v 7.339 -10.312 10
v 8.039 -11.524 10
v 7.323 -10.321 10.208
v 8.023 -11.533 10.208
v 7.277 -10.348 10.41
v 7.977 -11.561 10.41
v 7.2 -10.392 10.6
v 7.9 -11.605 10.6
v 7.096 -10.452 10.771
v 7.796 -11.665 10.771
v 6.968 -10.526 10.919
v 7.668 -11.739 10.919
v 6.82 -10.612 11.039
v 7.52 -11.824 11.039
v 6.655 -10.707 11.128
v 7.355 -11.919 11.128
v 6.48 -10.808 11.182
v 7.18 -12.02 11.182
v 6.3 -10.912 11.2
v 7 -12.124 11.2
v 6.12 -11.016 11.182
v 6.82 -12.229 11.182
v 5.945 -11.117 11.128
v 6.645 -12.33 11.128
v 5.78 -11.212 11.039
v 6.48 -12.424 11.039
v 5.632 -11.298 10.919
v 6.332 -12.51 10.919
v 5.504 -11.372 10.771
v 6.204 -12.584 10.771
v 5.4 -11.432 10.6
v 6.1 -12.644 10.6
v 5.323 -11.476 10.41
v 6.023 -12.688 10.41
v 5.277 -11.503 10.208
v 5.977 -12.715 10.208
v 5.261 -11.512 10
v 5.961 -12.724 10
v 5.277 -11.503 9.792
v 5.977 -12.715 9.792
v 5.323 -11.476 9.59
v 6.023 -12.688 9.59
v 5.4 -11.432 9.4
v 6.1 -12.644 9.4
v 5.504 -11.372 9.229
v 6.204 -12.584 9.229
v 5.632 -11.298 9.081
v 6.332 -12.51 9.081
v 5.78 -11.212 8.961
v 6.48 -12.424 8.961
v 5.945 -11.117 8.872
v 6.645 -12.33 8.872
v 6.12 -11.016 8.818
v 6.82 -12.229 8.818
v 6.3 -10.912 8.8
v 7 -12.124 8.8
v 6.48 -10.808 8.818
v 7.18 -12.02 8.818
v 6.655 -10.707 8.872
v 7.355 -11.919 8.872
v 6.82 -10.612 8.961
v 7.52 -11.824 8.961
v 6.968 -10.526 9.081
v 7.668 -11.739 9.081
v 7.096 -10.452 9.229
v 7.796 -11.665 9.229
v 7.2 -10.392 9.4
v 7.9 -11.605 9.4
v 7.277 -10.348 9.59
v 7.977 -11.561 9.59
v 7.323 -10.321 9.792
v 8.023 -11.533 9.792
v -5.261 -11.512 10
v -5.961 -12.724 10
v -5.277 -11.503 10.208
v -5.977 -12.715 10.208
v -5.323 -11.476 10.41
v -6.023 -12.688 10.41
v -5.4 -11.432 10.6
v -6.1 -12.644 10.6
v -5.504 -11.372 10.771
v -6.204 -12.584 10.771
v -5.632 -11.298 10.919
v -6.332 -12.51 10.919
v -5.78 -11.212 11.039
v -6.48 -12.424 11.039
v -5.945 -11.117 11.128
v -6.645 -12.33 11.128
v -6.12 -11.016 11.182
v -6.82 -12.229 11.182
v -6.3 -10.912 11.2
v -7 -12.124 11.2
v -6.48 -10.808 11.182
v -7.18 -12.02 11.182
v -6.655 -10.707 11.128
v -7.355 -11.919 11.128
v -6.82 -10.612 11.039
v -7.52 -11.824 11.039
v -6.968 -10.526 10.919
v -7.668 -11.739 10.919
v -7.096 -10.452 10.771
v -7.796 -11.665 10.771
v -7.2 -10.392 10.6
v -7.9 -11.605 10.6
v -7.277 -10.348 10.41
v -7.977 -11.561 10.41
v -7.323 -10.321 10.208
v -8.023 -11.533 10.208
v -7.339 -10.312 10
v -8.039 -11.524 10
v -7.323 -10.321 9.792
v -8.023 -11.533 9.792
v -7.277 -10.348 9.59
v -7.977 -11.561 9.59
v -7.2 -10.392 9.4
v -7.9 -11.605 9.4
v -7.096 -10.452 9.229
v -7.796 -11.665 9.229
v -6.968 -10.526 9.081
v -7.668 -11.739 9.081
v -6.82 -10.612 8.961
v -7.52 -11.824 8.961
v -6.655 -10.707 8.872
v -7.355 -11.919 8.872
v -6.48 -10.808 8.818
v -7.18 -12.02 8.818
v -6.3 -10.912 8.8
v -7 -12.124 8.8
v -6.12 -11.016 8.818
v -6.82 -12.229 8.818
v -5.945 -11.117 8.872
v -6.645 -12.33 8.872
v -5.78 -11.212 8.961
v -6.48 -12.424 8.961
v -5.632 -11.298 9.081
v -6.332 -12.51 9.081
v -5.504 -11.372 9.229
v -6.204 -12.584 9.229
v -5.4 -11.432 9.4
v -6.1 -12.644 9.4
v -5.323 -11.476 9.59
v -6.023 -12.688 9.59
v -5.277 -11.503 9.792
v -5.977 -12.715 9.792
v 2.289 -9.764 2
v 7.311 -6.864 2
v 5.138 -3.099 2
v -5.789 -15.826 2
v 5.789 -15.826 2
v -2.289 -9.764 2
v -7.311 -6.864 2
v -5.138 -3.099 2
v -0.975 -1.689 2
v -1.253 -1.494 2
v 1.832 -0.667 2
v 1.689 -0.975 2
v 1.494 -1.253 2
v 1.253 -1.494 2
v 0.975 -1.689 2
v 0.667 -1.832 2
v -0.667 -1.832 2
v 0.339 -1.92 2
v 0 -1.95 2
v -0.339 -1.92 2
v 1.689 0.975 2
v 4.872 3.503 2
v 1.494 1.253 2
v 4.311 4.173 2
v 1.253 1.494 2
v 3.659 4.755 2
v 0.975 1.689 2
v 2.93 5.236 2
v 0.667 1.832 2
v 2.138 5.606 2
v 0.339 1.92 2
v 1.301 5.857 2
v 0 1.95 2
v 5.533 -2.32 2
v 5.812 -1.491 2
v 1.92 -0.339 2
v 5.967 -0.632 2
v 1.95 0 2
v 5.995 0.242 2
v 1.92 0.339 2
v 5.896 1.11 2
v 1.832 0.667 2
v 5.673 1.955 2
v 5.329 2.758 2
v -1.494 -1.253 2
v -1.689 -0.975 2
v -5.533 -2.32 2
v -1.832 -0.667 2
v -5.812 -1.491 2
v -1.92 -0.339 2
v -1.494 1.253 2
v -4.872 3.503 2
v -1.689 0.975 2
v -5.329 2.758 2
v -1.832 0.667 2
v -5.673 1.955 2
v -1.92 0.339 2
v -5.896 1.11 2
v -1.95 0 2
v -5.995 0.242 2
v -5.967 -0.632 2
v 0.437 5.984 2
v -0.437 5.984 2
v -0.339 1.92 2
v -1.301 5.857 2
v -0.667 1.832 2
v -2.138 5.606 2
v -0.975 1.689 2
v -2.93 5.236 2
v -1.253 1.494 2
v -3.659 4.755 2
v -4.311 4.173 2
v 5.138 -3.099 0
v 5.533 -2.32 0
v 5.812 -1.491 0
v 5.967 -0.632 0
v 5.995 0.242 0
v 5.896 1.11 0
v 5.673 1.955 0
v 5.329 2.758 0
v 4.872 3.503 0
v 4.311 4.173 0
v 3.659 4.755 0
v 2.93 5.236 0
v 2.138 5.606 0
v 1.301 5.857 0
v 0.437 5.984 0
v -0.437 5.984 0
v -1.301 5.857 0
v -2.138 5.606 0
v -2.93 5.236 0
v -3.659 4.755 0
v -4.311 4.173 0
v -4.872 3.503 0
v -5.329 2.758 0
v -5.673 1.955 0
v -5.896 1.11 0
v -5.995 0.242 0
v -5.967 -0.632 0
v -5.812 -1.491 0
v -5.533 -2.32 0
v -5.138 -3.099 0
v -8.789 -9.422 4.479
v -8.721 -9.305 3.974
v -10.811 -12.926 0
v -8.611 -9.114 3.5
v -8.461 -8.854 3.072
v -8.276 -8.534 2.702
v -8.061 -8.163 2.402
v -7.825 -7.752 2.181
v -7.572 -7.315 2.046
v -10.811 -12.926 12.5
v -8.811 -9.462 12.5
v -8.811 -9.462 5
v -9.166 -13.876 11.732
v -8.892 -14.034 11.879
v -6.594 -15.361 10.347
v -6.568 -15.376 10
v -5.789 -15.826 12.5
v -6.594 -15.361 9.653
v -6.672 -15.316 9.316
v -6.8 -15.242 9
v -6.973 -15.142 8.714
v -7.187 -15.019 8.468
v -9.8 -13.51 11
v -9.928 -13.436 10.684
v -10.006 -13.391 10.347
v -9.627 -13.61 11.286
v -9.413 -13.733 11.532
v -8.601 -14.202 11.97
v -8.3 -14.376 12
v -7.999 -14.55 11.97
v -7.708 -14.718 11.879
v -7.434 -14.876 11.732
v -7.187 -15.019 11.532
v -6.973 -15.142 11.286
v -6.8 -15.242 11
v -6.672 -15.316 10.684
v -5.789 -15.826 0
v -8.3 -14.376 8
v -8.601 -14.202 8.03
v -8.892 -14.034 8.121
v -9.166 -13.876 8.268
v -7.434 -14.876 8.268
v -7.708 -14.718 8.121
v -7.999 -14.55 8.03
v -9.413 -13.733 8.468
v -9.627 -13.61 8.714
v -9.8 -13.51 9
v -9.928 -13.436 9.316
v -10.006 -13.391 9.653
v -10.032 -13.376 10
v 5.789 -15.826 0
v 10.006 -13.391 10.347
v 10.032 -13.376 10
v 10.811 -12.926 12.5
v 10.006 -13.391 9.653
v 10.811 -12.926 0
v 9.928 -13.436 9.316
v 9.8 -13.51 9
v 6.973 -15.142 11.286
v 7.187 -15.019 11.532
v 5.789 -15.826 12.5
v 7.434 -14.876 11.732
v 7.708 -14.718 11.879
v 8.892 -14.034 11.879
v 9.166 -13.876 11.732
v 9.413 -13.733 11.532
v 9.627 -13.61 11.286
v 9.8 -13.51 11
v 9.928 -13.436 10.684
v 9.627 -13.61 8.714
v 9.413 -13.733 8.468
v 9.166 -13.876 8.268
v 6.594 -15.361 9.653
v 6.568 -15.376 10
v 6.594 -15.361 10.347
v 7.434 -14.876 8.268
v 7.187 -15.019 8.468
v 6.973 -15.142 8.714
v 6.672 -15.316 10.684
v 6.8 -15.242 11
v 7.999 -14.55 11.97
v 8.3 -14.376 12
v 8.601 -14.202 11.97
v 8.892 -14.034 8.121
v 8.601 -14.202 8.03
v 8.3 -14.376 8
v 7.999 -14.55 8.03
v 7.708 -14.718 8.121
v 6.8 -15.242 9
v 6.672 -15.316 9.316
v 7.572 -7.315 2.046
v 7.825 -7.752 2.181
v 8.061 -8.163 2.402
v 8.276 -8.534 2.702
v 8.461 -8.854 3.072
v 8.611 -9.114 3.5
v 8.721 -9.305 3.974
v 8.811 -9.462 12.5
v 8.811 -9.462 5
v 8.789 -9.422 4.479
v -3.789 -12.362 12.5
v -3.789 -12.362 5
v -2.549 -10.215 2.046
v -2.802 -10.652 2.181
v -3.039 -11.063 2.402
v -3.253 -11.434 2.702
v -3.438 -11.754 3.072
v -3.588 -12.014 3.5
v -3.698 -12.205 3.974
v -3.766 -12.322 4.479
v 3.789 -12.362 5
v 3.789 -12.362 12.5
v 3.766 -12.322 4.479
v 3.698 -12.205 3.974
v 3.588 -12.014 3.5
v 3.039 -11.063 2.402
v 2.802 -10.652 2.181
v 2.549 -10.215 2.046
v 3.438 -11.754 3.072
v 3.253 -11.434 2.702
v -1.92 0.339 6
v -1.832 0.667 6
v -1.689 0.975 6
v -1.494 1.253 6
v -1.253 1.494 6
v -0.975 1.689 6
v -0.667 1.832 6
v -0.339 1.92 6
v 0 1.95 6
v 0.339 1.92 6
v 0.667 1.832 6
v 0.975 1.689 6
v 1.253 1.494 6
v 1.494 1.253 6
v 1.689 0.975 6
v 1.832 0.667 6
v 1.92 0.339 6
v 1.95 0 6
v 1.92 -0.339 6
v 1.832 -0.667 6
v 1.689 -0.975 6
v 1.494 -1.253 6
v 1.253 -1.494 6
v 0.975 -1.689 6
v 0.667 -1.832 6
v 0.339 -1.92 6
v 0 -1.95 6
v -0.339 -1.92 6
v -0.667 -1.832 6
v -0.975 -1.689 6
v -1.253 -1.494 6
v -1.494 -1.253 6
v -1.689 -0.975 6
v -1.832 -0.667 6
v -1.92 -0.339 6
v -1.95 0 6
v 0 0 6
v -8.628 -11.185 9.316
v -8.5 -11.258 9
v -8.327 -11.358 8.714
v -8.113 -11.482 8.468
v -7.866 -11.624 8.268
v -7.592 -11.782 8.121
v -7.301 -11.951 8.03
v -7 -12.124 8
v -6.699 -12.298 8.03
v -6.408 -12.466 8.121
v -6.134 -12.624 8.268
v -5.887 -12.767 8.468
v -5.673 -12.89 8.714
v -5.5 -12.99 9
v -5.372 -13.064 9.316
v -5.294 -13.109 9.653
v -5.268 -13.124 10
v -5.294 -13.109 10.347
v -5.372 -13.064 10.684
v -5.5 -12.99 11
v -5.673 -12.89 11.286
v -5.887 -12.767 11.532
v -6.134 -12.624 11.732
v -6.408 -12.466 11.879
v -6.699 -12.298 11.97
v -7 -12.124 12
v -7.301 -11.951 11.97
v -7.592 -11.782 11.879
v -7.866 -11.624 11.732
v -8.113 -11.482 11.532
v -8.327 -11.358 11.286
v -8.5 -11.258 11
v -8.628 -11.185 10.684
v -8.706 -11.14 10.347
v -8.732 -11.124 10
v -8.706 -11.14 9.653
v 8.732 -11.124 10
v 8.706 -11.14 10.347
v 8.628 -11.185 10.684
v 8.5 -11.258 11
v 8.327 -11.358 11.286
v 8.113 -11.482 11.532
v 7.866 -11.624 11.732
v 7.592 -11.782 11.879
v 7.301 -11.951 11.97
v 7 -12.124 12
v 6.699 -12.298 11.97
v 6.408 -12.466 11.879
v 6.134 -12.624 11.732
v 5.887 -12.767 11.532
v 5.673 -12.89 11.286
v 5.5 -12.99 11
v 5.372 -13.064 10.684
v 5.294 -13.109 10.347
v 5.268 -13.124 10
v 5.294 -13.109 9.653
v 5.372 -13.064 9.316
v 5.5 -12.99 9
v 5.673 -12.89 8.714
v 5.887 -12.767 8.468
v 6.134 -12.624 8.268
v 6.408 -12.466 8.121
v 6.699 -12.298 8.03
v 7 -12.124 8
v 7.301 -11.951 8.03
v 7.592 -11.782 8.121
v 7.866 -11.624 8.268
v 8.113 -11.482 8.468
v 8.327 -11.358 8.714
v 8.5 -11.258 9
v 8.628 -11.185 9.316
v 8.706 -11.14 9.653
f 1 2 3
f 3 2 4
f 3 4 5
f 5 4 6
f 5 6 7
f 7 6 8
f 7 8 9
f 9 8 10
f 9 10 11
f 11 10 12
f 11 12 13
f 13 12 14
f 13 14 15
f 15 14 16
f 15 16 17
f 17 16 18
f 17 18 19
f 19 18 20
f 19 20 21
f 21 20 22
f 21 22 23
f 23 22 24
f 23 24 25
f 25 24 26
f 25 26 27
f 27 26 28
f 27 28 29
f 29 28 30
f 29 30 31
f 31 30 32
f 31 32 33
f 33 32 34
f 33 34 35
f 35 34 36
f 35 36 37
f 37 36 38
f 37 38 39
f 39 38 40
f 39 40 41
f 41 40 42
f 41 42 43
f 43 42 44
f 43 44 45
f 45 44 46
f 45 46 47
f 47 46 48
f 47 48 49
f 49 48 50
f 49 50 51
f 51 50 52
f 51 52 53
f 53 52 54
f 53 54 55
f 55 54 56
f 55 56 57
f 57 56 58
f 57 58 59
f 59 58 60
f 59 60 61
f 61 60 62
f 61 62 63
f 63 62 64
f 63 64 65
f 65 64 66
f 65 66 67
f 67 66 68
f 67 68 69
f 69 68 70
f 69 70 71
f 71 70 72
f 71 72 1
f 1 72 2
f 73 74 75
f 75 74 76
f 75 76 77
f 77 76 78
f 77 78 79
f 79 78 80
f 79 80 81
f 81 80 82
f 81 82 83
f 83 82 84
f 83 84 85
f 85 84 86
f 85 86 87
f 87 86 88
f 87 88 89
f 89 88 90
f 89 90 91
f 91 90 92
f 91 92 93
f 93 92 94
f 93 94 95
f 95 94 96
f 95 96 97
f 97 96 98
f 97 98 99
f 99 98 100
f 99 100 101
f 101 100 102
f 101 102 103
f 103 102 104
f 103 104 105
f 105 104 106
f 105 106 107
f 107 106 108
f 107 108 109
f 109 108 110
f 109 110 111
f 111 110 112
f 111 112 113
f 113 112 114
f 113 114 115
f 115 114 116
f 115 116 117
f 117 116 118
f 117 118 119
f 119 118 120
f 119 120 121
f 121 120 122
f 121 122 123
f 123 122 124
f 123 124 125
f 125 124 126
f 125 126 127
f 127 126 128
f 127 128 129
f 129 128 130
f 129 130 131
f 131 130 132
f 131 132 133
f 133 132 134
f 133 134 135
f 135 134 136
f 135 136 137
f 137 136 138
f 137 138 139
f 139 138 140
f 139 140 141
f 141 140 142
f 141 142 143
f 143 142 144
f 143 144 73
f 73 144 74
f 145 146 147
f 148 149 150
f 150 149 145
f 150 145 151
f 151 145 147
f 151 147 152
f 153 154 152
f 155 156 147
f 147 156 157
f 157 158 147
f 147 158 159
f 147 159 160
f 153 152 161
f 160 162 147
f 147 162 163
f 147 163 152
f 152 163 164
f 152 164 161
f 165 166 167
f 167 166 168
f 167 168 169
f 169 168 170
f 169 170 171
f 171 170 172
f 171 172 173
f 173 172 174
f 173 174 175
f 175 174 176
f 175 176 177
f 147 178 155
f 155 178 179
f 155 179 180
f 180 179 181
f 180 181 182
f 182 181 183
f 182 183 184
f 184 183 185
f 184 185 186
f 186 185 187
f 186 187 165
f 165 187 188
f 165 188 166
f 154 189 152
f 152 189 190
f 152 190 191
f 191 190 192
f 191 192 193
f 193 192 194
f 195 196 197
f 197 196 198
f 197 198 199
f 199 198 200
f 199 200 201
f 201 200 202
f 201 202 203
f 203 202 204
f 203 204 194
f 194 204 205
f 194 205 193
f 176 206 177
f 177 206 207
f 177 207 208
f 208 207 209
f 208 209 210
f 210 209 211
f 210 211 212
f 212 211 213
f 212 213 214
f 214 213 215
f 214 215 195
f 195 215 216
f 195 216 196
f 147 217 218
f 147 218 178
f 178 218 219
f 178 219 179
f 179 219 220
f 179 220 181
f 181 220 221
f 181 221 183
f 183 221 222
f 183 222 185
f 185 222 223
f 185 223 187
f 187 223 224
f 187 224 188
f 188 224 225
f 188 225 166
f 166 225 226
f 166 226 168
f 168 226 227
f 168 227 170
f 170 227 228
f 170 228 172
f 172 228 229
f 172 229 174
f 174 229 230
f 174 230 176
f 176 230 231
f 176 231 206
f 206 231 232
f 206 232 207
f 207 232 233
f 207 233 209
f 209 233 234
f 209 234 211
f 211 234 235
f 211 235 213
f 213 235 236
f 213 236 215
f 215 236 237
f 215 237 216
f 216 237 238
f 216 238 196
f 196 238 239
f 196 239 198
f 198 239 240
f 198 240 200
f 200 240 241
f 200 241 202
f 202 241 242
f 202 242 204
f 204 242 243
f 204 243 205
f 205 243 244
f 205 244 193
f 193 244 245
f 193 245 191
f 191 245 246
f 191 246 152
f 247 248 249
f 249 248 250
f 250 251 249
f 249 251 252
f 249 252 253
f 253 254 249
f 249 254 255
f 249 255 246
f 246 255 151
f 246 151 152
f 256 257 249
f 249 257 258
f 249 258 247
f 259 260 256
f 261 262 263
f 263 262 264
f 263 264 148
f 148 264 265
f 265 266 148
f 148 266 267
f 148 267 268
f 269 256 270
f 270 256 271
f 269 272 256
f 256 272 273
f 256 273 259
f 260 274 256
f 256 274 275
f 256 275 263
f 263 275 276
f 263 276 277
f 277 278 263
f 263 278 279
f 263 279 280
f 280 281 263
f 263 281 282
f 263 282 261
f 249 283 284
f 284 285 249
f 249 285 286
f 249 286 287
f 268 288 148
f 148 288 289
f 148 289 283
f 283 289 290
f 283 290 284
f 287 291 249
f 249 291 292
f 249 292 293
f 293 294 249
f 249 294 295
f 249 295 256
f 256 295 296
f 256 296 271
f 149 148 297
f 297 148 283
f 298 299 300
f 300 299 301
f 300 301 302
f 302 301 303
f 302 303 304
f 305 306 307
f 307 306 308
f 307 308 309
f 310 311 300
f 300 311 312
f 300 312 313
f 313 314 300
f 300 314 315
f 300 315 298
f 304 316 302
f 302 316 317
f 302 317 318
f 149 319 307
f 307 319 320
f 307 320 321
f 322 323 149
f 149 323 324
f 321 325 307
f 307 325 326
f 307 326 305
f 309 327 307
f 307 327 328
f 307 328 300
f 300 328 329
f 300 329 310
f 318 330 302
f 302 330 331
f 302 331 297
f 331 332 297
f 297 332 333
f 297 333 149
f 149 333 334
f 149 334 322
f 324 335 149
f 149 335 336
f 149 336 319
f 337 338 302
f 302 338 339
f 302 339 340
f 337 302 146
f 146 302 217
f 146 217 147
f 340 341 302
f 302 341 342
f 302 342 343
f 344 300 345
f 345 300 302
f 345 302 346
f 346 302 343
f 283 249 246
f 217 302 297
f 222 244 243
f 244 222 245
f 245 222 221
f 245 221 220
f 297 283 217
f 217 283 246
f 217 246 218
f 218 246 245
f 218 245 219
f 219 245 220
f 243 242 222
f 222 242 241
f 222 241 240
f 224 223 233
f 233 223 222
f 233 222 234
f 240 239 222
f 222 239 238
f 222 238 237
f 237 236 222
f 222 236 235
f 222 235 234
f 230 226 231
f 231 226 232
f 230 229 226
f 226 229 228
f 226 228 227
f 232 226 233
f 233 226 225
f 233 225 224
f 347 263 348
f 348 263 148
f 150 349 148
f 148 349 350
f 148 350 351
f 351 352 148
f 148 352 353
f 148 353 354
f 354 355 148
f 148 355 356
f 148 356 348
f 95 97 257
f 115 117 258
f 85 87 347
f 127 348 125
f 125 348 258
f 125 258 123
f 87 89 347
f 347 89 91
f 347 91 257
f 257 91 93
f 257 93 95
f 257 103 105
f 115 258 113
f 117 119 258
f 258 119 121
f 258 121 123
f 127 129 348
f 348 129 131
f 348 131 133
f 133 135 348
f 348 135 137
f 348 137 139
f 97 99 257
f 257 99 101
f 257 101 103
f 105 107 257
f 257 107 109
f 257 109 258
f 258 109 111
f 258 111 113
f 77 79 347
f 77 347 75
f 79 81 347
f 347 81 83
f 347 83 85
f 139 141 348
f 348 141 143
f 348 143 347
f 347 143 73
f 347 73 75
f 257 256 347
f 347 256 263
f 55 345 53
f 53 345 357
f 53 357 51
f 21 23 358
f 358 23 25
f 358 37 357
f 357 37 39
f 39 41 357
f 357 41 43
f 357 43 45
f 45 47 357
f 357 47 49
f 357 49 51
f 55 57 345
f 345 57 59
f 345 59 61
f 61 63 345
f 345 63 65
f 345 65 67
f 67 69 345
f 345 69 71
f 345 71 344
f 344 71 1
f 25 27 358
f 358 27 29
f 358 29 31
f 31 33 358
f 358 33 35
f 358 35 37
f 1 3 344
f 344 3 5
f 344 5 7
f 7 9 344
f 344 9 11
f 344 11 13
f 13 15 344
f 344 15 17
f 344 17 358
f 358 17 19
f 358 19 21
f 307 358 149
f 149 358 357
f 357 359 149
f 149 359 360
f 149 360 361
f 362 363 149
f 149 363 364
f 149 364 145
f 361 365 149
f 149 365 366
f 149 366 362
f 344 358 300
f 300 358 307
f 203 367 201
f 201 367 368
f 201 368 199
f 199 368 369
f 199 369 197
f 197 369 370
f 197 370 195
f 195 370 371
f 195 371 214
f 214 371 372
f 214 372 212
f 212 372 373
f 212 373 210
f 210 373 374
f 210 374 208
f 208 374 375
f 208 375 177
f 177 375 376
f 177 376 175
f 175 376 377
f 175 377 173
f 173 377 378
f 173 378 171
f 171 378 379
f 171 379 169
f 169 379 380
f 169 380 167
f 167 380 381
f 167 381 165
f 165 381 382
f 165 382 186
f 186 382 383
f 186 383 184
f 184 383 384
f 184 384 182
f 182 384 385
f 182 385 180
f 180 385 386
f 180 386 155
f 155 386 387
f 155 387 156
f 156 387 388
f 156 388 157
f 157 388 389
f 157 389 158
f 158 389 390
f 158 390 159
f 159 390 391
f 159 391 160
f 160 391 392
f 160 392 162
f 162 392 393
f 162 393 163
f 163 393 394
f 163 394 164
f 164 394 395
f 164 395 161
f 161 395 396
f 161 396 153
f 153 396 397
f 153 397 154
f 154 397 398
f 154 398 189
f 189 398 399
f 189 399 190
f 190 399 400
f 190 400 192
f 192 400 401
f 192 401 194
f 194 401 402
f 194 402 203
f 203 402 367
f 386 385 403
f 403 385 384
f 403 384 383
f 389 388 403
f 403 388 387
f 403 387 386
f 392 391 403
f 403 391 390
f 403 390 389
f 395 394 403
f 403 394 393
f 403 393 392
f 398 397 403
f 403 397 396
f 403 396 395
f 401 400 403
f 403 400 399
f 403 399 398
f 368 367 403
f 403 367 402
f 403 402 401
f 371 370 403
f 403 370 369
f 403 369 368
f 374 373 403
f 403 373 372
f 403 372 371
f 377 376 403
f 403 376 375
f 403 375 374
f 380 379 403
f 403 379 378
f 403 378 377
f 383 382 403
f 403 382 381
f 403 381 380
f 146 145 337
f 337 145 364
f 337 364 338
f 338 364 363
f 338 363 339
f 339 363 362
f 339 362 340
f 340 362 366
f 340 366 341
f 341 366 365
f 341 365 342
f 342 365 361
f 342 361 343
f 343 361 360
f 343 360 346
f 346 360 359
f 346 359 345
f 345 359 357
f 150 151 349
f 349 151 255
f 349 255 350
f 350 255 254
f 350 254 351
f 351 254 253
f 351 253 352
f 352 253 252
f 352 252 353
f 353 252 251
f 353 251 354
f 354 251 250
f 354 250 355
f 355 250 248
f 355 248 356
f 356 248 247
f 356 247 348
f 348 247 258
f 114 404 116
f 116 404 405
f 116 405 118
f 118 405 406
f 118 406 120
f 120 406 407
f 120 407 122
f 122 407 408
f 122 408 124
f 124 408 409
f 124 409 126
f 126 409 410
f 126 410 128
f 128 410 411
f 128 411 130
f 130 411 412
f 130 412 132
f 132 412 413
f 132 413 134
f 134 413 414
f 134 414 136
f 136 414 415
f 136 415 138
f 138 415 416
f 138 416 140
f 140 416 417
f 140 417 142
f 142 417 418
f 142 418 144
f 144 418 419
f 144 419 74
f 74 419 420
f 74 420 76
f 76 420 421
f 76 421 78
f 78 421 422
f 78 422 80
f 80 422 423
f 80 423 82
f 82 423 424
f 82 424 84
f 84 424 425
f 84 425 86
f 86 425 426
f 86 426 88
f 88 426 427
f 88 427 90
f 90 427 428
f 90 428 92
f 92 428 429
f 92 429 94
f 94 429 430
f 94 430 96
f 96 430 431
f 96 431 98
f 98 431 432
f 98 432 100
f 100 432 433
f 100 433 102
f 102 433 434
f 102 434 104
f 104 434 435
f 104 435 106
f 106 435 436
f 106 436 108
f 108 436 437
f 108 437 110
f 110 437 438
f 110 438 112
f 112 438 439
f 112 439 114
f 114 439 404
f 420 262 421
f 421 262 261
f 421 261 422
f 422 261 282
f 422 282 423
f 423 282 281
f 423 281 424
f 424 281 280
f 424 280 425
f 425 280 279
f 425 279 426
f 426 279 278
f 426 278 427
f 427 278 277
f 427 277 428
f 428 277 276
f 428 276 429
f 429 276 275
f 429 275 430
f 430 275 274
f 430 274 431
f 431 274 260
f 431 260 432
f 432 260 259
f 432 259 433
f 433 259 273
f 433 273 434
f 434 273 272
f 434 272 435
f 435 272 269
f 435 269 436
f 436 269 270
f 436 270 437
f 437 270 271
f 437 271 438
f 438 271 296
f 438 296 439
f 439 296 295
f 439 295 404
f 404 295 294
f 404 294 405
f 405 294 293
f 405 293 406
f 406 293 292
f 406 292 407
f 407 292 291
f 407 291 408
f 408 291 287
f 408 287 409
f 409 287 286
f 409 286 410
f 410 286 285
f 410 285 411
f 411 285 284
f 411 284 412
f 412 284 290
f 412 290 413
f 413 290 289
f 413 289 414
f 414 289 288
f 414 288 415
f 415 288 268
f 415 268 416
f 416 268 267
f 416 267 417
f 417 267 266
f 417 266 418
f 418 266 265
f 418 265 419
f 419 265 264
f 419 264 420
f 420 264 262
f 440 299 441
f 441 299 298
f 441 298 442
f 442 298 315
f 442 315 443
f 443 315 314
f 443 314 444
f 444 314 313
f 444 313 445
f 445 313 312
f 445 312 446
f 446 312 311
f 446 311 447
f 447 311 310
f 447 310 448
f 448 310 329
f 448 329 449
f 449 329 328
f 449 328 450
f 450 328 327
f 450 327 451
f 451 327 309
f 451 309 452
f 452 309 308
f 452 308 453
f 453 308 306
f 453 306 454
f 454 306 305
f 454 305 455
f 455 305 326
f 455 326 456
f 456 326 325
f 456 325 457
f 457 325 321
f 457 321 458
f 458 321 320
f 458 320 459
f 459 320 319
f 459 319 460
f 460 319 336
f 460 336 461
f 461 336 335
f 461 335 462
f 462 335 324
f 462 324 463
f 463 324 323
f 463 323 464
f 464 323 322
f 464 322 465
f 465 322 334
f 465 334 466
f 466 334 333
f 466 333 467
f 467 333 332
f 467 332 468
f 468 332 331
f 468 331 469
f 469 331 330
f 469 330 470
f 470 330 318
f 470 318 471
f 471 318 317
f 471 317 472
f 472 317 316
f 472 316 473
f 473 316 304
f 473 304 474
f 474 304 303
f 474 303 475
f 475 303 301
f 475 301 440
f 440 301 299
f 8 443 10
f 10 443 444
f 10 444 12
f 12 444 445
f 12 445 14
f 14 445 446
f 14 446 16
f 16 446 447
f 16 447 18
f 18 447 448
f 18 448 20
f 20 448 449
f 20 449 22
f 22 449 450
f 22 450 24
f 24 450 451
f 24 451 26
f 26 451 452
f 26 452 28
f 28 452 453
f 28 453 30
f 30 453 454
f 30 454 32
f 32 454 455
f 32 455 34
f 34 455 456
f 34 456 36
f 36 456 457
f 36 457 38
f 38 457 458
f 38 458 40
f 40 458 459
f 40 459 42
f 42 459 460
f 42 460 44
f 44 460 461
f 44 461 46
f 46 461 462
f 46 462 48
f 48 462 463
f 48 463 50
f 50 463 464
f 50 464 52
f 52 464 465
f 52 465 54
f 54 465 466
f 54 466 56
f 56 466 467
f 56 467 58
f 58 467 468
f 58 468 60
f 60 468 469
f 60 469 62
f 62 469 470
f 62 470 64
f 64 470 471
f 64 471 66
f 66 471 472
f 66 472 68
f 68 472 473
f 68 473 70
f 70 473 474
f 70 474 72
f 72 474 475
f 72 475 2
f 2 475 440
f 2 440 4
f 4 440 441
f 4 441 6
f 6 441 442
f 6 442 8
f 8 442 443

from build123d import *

# Parameters (mm, degrees)
EXTRUDE_1_DEPTH     = 2
EXTRUDE_2_DEPTH     = 10.5
SKETCH_3_R          = 1.95
EXTRUDE_3_DEPTH     = 4
FILLET_1_R          = 3
SKETCH_4_R          = 1.2
CUT_EXTRUDE_1_DEPTH = 28.201889258
SKETCH_5_R          = 2
CUT_EXTRUDE_2_DEPTH = 2.6


with BuildPart() as part:
    # 스케치1 → 보스-돌출1 (new body)
    with BuildSketch(Plane.XY):
        with BuildLine():
            Line((-8.811473671, -9.461920088), (-10.811473671, -12.926021703))
            Line((-10.811473671, -12.926021703), (-5.788526329, -15.826021703))
            Line((-5.788526329, -15.826021703), (5.788526329, -15.826021703))
            Line((5.788526329, -15.826021703), (10.811473671, -12.926021703))
            Line((10.811473671, -12.926021703), (8.811473671, -9.461920088))
            Line((8.811473671, -9.461920088), (5.137782868, -3.098900966))
            ThreePointArc((5.137782868, -3.098900966), (0, 6), (-5.137782868, -3.098900966))
            Line((-5.137782868, -3.098900966), (-8.811473671, -9.461920088))
        make_face()
    extrude(amount=EXTRUDE_1_DEPTH)

    # 스케치2 → 보스-돌출2 (add)
    with BuildSketch(Plane.XY.offset(2)):
        Polygon((-5.788526329, -15.826021703), (-10.811473671, -12.926021703), (-8.811473671, -9.461920088), (-3.788526329, -12.361920088), align=None)
        Polygon((5.788526329, -15.826021703), (3.788526329, -12.361920088), (8.811473671, -9.461920088), (10.811473671, -12.926021703), align=None)
    extrude(amount=EXTRUDE_2_DEPTH)

    # 스케치3 → 보스-돌출3 (add)
    with BuildSketch(Plane.XY.offset(2)):
        Circle(SKETCH_3_R)
    extrude(amount=EXTRUDE_3_DEPTH)

    # 필렛1
    fillet_1_edges = [part.edges().sort_by_distance(p)[0] for p in [
        (-6.3, -10.911920088, 2),
        (6.3, -10.911920088, 2),
    ]]
    fillet(fillet_1_edges, radius=FILLET_1_R)

    # 스케치4 → 컷-돌출1 (cut, through all)
    with BuildSketch(Plane(origin=(-8.3, -14.376021703, 0), x_dir=(0.866025404, -0.5, 0), z_dir=(-0.5, -0.866025404, 0))):
        with Locations((0, 10)):
            Circle(SKETCH_4_R)
    cut_extrude_1 = extrude(amount=-CUT_EXTRUDE_1_DEPTH, mode=Mode.SUBTRACT)

    # 스케치5 → 컷-돌출2 (cut)
    with BuildSketch(Plane(origin=(-8.3, -14.376021703, 0), x_dir=(0.866025404, -0.5, 0), z_dir=(-0.5, -0.866025404, 0))):
        with Locations((0, 10)):
            Circle(SKETCH_5_R)
    cut_extrude_2 = extrude(amount=-CUT_EXTRUDE_2_DEPTH, mode=Mode.SUBTRACT)

    # 대칭 복사1: 컷-돌출1, 컷-돌출2 across plane
    add(cut_extrude_1.mirror(Plane(origin=(0, 0, 0), x_dir=(0, 0, 1), z_dir=(1, 0, 0))), mode=Mode.SUBTRACT)
    add(cut_extrude_2.mirror(Plane(origin=(0, 0, 0), x_dir=(0, 0, 1), z_dir=(1, 0, 0))), mode=Mode.SUBTRACT)


solid = part.part
